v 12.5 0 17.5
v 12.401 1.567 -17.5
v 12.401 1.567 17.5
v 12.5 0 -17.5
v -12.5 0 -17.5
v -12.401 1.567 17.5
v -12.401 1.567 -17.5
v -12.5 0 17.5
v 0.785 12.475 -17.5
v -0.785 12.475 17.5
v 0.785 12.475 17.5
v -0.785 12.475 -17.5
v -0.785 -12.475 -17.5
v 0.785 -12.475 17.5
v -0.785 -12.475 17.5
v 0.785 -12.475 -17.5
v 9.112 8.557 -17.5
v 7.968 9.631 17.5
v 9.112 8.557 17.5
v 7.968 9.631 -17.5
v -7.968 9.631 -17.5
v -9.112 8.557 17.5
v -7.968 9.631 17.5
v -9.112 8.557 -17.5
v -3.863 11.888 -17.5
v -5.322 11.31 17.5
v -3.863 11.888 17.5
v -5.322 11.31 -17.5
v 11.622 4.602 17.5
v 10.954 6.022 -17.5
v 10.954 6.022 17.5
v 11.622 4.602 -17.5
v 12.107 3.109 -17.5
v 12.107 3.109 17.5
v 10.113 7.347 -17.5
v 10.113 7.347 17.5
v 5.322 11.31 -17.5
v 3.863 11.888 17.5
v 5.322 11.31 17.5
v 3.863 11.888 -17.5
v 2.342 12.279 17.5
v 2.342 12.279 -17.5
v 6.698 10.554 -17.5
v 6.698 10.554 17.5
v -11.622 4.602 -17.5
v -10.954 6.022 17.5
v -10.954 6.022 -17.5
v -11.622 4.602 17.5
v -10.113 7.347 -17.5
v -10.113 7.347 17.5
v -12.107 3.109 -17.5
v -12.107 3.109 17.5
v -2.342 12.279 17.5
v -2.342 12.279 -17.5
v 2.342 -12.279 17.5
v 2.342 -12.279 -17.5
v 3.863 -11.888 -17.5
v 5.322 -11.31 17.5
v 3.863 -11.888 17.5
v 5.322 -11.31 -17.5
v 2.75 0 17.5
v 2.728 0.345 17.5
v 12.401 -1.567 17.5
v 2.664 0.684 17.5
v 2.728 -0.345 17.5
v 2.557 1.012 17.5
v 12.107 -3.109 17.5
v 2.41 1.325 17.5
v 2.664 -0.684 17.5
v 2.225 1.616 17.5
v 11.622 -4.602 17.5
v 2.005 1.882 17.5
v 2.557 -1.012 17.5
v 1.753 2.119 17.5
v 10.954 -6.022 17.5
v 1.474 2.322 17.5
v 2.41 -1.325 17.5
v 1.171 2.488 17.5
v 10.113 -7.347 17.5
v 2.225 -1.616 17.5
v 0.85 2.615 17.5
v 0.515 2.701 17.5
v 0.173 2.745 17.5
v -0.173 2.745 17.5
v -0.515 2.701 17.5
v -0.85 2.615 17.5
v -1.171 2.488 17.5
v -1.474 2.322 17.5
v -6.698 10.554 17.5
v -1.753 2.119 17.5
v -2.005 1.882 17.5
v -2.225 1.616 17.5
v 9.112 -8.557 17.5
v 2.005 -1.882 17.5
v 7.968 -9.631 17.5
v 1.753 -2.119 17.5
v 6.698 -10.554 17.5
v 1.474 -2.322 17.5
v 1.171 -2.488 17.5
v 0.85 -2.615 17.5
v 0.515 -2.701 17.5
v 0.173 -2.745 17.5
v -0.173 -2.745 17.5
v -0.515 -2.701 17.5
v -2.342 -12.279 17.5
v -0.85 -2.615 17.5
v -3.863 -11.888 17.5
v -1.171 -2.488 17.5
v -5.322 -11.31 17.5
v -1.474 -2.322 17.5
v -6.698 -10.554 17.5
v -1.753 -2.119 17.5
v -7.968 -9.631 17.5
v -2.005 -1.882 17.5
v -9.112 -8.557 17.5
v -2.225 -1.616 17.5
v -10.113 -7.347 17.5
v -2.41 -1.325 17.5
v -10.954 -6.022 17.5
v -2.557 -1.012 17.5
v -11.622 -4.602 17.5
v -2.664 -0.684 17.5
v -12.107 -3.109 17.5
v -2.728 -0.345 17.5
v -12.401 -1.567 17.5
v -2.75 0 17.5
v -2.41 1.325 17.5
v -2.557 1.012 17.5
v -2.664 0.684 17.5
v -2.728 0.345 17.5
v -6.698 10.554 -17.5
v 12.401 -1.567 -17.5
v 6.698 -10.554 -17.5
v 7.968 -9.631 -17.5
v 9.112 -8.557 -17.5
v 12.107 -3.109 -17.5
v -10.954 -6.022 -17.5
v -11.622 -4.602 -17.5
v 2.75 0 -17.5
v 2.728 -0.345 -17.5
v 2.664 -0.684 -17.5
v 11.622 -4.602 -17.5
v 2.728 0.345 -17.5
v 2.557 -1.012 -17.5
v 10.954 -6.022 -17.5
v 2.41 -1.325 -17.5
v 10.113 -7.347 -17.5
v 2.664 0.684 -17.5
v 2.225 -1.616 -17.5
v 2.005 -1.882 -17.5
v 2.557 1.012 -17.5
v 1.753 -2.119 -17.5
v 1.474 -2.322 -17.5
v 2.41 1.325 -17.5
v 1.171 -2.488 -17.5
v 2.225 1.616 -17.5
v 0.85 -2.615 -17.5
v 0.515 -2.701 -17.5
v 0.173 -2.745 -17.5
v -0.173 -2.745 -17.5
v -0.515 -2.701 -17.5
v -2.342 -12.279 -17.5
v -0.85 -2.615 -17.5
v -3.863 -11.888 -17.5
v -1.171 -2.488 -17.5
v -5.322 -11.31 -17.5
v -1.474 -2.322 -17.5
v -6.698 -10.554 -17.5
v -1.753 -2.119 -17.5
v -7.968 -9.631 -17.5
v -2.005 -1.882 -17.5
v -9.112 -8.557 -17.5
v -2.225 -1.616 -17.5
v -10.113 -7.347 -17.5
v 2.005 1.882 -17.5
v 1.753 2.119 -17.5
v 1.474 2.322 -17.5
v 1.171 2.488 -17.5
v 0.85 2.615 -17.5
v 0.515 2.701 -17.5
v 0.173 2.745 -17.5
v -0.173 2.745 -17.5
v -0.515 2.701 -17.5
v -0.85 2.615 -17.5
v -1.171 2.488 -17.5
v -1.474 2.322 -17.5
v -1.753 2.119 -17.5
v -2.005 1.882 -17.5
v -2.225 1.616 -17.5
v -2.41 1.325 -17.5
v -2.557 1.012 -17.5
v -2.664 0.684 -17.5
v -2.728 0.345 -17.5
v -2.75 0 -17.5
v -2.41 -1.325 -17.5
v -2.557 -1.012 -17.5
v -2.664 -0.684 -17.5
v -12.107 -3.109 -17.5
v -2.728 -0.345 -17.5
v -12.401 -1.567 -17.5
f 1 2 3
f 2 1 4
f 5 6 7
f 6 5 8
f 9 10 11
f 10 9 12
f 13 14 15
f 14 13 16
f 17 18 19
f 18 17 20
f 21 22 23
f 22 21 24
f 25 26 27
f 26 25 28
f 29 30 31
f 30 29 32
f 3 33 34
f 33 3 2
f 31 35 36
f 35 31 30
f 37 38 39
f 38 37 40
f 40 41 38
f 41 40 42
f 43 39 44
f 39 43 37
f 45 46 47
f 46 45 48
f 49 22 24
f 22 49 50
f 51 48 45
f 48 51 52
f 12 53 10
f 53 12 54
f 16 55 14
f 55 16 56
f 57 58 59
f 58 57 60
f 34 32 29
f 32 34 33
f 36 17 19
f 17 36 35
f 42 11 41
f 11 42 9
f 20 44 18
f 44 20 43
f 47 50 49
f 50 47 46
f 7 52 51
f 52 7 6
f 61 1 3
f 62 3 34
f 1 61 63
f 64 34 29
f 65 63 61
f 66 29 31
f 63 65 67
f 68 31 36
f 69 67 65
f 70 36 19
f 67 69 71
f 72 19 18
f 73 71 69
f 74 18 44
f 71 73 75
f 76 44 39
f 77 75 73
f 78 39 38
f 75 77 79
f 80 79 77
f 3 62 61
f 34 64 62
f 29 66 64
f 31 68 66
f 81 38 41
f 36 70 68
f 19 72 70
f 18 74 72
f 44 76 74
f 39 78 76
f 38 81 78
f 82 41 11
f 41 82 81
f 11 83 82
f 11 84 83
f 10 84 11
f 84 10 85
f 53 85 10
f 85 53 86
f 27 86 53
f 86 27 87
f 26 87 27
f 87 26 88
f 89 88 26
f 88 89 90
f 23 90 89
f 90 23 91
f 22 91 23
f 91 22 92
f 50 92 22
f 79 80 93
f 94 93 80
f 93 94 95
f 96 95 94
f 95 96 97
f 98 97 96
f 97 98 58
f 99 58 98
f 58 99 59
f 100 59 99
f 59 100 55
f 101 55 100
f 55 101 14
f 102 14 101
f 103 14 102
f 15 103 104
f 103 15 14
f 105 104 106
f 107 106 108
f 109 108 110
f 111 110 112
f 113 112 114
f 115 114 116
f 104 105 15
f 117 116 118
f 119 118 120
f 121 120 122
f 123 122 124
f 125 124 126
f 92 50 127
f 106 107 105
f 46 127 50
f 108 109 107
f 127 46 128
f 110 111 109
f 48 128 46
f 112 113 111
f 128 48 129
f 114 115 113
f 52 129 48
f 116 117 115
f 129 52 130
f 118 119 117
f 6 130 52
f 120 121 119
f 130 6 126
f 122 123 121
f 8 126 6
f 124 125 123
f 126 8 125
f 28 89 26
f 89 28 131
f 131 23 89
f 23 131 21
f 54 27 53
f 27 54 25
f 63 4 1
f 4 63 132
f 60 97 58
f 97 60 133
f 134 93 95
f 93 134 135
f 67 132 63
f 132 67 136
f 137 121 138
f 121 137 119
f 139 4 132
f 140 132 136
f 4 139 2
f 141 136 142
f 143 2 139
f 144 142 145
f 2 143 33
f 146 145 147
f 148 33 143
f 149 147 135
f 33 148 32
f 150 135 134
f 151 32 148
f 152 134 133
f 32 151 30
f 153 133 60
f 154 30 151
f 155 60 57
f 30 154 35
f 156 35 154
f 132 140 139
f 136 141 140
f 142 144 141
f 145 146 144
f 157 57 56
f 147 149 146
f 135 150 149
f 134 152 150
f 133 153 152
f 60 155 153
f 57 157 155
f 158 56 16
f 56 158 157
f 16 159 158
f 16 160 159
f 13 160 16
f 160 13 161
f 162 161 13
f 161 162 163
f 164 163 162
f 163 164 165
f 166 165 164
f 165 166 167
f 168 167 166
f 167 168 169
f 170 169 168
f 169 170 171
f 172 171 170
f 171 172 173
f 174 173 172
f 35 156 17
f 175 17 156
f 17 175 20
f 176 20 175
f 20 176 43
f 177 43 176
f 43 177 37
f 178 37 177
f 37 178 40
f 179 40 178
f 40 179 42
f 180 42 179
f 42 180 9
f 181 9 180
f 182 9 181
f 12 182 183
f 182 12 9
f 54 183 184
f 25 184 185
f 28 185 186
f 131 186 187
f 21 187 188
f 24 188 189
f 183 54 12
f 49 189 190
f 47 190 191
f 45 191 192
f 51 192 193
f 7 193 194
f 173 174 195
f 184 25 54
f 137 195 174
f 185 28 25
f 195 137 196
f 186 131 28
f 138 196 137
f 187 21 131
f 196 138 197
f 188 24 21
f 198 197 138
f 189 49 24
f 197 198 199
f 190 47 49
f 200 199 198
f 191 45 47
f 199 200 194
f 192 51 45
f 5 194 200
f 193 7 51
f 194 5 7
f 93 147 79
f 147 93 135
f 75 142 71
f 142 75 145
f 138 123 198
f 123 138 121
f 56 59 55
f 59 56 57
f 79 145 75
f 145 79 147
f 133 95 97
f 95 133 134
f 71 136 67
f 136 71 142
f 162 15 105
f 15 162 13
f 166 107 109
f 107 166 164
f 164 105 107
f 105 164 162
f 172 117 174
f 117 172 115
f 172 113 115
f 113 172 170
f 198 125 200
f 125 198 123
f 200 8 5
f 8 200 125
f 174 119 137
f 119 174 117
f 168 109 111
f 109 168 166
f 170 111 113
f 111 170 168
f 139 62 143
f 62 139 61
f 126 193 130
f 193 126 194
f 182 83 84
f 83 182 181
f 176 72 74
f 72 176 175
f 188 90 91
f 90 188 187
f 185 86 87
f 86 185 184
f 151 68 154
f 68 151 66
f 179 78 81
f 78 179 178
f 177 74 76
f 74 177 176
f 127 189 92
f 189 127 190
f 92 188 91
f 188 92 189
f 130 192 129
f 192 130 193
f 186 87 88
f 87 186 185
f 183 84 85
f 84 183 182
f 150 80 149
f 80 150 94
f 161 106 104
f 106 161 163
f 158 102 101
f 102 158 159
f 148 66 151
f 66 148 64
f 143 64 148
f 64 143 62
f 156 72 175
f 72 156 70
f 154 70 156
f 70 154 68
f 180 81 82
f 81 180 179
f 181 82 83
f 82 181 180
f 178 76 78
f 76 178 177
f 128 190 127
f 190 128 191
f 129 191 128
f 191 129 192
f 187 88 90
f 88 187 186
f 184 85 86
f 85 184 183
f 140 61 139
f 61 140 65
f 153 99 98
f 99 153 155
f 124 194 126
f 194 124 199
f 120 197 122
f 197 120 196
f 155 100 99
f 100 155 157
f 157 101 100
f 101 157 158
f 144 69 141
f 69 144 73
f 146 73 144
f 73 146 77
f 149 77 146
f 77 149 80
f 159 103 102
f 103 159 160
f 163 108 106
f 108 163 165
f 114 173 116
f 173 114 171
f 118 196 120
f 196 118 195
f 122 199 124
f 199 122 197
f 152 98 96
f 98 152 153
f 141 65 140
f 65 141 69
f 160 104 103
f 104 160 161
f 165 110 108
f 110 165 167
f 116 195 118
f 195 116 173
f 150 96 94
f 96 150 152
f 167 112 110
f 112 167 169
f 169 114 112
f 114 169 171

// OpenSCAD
$fn = 50;


difference() {
	union() {
		translate(v = [0, 0, -17.5000000000]) {
			cylinder(h = 35, r = 12.5000000000);
		}
	}
	union() {
		translate(v = [0, 0, -100.0000000000]) {
			cylinder(h = 200, r = 2.7500000000);
		}
	}
}
